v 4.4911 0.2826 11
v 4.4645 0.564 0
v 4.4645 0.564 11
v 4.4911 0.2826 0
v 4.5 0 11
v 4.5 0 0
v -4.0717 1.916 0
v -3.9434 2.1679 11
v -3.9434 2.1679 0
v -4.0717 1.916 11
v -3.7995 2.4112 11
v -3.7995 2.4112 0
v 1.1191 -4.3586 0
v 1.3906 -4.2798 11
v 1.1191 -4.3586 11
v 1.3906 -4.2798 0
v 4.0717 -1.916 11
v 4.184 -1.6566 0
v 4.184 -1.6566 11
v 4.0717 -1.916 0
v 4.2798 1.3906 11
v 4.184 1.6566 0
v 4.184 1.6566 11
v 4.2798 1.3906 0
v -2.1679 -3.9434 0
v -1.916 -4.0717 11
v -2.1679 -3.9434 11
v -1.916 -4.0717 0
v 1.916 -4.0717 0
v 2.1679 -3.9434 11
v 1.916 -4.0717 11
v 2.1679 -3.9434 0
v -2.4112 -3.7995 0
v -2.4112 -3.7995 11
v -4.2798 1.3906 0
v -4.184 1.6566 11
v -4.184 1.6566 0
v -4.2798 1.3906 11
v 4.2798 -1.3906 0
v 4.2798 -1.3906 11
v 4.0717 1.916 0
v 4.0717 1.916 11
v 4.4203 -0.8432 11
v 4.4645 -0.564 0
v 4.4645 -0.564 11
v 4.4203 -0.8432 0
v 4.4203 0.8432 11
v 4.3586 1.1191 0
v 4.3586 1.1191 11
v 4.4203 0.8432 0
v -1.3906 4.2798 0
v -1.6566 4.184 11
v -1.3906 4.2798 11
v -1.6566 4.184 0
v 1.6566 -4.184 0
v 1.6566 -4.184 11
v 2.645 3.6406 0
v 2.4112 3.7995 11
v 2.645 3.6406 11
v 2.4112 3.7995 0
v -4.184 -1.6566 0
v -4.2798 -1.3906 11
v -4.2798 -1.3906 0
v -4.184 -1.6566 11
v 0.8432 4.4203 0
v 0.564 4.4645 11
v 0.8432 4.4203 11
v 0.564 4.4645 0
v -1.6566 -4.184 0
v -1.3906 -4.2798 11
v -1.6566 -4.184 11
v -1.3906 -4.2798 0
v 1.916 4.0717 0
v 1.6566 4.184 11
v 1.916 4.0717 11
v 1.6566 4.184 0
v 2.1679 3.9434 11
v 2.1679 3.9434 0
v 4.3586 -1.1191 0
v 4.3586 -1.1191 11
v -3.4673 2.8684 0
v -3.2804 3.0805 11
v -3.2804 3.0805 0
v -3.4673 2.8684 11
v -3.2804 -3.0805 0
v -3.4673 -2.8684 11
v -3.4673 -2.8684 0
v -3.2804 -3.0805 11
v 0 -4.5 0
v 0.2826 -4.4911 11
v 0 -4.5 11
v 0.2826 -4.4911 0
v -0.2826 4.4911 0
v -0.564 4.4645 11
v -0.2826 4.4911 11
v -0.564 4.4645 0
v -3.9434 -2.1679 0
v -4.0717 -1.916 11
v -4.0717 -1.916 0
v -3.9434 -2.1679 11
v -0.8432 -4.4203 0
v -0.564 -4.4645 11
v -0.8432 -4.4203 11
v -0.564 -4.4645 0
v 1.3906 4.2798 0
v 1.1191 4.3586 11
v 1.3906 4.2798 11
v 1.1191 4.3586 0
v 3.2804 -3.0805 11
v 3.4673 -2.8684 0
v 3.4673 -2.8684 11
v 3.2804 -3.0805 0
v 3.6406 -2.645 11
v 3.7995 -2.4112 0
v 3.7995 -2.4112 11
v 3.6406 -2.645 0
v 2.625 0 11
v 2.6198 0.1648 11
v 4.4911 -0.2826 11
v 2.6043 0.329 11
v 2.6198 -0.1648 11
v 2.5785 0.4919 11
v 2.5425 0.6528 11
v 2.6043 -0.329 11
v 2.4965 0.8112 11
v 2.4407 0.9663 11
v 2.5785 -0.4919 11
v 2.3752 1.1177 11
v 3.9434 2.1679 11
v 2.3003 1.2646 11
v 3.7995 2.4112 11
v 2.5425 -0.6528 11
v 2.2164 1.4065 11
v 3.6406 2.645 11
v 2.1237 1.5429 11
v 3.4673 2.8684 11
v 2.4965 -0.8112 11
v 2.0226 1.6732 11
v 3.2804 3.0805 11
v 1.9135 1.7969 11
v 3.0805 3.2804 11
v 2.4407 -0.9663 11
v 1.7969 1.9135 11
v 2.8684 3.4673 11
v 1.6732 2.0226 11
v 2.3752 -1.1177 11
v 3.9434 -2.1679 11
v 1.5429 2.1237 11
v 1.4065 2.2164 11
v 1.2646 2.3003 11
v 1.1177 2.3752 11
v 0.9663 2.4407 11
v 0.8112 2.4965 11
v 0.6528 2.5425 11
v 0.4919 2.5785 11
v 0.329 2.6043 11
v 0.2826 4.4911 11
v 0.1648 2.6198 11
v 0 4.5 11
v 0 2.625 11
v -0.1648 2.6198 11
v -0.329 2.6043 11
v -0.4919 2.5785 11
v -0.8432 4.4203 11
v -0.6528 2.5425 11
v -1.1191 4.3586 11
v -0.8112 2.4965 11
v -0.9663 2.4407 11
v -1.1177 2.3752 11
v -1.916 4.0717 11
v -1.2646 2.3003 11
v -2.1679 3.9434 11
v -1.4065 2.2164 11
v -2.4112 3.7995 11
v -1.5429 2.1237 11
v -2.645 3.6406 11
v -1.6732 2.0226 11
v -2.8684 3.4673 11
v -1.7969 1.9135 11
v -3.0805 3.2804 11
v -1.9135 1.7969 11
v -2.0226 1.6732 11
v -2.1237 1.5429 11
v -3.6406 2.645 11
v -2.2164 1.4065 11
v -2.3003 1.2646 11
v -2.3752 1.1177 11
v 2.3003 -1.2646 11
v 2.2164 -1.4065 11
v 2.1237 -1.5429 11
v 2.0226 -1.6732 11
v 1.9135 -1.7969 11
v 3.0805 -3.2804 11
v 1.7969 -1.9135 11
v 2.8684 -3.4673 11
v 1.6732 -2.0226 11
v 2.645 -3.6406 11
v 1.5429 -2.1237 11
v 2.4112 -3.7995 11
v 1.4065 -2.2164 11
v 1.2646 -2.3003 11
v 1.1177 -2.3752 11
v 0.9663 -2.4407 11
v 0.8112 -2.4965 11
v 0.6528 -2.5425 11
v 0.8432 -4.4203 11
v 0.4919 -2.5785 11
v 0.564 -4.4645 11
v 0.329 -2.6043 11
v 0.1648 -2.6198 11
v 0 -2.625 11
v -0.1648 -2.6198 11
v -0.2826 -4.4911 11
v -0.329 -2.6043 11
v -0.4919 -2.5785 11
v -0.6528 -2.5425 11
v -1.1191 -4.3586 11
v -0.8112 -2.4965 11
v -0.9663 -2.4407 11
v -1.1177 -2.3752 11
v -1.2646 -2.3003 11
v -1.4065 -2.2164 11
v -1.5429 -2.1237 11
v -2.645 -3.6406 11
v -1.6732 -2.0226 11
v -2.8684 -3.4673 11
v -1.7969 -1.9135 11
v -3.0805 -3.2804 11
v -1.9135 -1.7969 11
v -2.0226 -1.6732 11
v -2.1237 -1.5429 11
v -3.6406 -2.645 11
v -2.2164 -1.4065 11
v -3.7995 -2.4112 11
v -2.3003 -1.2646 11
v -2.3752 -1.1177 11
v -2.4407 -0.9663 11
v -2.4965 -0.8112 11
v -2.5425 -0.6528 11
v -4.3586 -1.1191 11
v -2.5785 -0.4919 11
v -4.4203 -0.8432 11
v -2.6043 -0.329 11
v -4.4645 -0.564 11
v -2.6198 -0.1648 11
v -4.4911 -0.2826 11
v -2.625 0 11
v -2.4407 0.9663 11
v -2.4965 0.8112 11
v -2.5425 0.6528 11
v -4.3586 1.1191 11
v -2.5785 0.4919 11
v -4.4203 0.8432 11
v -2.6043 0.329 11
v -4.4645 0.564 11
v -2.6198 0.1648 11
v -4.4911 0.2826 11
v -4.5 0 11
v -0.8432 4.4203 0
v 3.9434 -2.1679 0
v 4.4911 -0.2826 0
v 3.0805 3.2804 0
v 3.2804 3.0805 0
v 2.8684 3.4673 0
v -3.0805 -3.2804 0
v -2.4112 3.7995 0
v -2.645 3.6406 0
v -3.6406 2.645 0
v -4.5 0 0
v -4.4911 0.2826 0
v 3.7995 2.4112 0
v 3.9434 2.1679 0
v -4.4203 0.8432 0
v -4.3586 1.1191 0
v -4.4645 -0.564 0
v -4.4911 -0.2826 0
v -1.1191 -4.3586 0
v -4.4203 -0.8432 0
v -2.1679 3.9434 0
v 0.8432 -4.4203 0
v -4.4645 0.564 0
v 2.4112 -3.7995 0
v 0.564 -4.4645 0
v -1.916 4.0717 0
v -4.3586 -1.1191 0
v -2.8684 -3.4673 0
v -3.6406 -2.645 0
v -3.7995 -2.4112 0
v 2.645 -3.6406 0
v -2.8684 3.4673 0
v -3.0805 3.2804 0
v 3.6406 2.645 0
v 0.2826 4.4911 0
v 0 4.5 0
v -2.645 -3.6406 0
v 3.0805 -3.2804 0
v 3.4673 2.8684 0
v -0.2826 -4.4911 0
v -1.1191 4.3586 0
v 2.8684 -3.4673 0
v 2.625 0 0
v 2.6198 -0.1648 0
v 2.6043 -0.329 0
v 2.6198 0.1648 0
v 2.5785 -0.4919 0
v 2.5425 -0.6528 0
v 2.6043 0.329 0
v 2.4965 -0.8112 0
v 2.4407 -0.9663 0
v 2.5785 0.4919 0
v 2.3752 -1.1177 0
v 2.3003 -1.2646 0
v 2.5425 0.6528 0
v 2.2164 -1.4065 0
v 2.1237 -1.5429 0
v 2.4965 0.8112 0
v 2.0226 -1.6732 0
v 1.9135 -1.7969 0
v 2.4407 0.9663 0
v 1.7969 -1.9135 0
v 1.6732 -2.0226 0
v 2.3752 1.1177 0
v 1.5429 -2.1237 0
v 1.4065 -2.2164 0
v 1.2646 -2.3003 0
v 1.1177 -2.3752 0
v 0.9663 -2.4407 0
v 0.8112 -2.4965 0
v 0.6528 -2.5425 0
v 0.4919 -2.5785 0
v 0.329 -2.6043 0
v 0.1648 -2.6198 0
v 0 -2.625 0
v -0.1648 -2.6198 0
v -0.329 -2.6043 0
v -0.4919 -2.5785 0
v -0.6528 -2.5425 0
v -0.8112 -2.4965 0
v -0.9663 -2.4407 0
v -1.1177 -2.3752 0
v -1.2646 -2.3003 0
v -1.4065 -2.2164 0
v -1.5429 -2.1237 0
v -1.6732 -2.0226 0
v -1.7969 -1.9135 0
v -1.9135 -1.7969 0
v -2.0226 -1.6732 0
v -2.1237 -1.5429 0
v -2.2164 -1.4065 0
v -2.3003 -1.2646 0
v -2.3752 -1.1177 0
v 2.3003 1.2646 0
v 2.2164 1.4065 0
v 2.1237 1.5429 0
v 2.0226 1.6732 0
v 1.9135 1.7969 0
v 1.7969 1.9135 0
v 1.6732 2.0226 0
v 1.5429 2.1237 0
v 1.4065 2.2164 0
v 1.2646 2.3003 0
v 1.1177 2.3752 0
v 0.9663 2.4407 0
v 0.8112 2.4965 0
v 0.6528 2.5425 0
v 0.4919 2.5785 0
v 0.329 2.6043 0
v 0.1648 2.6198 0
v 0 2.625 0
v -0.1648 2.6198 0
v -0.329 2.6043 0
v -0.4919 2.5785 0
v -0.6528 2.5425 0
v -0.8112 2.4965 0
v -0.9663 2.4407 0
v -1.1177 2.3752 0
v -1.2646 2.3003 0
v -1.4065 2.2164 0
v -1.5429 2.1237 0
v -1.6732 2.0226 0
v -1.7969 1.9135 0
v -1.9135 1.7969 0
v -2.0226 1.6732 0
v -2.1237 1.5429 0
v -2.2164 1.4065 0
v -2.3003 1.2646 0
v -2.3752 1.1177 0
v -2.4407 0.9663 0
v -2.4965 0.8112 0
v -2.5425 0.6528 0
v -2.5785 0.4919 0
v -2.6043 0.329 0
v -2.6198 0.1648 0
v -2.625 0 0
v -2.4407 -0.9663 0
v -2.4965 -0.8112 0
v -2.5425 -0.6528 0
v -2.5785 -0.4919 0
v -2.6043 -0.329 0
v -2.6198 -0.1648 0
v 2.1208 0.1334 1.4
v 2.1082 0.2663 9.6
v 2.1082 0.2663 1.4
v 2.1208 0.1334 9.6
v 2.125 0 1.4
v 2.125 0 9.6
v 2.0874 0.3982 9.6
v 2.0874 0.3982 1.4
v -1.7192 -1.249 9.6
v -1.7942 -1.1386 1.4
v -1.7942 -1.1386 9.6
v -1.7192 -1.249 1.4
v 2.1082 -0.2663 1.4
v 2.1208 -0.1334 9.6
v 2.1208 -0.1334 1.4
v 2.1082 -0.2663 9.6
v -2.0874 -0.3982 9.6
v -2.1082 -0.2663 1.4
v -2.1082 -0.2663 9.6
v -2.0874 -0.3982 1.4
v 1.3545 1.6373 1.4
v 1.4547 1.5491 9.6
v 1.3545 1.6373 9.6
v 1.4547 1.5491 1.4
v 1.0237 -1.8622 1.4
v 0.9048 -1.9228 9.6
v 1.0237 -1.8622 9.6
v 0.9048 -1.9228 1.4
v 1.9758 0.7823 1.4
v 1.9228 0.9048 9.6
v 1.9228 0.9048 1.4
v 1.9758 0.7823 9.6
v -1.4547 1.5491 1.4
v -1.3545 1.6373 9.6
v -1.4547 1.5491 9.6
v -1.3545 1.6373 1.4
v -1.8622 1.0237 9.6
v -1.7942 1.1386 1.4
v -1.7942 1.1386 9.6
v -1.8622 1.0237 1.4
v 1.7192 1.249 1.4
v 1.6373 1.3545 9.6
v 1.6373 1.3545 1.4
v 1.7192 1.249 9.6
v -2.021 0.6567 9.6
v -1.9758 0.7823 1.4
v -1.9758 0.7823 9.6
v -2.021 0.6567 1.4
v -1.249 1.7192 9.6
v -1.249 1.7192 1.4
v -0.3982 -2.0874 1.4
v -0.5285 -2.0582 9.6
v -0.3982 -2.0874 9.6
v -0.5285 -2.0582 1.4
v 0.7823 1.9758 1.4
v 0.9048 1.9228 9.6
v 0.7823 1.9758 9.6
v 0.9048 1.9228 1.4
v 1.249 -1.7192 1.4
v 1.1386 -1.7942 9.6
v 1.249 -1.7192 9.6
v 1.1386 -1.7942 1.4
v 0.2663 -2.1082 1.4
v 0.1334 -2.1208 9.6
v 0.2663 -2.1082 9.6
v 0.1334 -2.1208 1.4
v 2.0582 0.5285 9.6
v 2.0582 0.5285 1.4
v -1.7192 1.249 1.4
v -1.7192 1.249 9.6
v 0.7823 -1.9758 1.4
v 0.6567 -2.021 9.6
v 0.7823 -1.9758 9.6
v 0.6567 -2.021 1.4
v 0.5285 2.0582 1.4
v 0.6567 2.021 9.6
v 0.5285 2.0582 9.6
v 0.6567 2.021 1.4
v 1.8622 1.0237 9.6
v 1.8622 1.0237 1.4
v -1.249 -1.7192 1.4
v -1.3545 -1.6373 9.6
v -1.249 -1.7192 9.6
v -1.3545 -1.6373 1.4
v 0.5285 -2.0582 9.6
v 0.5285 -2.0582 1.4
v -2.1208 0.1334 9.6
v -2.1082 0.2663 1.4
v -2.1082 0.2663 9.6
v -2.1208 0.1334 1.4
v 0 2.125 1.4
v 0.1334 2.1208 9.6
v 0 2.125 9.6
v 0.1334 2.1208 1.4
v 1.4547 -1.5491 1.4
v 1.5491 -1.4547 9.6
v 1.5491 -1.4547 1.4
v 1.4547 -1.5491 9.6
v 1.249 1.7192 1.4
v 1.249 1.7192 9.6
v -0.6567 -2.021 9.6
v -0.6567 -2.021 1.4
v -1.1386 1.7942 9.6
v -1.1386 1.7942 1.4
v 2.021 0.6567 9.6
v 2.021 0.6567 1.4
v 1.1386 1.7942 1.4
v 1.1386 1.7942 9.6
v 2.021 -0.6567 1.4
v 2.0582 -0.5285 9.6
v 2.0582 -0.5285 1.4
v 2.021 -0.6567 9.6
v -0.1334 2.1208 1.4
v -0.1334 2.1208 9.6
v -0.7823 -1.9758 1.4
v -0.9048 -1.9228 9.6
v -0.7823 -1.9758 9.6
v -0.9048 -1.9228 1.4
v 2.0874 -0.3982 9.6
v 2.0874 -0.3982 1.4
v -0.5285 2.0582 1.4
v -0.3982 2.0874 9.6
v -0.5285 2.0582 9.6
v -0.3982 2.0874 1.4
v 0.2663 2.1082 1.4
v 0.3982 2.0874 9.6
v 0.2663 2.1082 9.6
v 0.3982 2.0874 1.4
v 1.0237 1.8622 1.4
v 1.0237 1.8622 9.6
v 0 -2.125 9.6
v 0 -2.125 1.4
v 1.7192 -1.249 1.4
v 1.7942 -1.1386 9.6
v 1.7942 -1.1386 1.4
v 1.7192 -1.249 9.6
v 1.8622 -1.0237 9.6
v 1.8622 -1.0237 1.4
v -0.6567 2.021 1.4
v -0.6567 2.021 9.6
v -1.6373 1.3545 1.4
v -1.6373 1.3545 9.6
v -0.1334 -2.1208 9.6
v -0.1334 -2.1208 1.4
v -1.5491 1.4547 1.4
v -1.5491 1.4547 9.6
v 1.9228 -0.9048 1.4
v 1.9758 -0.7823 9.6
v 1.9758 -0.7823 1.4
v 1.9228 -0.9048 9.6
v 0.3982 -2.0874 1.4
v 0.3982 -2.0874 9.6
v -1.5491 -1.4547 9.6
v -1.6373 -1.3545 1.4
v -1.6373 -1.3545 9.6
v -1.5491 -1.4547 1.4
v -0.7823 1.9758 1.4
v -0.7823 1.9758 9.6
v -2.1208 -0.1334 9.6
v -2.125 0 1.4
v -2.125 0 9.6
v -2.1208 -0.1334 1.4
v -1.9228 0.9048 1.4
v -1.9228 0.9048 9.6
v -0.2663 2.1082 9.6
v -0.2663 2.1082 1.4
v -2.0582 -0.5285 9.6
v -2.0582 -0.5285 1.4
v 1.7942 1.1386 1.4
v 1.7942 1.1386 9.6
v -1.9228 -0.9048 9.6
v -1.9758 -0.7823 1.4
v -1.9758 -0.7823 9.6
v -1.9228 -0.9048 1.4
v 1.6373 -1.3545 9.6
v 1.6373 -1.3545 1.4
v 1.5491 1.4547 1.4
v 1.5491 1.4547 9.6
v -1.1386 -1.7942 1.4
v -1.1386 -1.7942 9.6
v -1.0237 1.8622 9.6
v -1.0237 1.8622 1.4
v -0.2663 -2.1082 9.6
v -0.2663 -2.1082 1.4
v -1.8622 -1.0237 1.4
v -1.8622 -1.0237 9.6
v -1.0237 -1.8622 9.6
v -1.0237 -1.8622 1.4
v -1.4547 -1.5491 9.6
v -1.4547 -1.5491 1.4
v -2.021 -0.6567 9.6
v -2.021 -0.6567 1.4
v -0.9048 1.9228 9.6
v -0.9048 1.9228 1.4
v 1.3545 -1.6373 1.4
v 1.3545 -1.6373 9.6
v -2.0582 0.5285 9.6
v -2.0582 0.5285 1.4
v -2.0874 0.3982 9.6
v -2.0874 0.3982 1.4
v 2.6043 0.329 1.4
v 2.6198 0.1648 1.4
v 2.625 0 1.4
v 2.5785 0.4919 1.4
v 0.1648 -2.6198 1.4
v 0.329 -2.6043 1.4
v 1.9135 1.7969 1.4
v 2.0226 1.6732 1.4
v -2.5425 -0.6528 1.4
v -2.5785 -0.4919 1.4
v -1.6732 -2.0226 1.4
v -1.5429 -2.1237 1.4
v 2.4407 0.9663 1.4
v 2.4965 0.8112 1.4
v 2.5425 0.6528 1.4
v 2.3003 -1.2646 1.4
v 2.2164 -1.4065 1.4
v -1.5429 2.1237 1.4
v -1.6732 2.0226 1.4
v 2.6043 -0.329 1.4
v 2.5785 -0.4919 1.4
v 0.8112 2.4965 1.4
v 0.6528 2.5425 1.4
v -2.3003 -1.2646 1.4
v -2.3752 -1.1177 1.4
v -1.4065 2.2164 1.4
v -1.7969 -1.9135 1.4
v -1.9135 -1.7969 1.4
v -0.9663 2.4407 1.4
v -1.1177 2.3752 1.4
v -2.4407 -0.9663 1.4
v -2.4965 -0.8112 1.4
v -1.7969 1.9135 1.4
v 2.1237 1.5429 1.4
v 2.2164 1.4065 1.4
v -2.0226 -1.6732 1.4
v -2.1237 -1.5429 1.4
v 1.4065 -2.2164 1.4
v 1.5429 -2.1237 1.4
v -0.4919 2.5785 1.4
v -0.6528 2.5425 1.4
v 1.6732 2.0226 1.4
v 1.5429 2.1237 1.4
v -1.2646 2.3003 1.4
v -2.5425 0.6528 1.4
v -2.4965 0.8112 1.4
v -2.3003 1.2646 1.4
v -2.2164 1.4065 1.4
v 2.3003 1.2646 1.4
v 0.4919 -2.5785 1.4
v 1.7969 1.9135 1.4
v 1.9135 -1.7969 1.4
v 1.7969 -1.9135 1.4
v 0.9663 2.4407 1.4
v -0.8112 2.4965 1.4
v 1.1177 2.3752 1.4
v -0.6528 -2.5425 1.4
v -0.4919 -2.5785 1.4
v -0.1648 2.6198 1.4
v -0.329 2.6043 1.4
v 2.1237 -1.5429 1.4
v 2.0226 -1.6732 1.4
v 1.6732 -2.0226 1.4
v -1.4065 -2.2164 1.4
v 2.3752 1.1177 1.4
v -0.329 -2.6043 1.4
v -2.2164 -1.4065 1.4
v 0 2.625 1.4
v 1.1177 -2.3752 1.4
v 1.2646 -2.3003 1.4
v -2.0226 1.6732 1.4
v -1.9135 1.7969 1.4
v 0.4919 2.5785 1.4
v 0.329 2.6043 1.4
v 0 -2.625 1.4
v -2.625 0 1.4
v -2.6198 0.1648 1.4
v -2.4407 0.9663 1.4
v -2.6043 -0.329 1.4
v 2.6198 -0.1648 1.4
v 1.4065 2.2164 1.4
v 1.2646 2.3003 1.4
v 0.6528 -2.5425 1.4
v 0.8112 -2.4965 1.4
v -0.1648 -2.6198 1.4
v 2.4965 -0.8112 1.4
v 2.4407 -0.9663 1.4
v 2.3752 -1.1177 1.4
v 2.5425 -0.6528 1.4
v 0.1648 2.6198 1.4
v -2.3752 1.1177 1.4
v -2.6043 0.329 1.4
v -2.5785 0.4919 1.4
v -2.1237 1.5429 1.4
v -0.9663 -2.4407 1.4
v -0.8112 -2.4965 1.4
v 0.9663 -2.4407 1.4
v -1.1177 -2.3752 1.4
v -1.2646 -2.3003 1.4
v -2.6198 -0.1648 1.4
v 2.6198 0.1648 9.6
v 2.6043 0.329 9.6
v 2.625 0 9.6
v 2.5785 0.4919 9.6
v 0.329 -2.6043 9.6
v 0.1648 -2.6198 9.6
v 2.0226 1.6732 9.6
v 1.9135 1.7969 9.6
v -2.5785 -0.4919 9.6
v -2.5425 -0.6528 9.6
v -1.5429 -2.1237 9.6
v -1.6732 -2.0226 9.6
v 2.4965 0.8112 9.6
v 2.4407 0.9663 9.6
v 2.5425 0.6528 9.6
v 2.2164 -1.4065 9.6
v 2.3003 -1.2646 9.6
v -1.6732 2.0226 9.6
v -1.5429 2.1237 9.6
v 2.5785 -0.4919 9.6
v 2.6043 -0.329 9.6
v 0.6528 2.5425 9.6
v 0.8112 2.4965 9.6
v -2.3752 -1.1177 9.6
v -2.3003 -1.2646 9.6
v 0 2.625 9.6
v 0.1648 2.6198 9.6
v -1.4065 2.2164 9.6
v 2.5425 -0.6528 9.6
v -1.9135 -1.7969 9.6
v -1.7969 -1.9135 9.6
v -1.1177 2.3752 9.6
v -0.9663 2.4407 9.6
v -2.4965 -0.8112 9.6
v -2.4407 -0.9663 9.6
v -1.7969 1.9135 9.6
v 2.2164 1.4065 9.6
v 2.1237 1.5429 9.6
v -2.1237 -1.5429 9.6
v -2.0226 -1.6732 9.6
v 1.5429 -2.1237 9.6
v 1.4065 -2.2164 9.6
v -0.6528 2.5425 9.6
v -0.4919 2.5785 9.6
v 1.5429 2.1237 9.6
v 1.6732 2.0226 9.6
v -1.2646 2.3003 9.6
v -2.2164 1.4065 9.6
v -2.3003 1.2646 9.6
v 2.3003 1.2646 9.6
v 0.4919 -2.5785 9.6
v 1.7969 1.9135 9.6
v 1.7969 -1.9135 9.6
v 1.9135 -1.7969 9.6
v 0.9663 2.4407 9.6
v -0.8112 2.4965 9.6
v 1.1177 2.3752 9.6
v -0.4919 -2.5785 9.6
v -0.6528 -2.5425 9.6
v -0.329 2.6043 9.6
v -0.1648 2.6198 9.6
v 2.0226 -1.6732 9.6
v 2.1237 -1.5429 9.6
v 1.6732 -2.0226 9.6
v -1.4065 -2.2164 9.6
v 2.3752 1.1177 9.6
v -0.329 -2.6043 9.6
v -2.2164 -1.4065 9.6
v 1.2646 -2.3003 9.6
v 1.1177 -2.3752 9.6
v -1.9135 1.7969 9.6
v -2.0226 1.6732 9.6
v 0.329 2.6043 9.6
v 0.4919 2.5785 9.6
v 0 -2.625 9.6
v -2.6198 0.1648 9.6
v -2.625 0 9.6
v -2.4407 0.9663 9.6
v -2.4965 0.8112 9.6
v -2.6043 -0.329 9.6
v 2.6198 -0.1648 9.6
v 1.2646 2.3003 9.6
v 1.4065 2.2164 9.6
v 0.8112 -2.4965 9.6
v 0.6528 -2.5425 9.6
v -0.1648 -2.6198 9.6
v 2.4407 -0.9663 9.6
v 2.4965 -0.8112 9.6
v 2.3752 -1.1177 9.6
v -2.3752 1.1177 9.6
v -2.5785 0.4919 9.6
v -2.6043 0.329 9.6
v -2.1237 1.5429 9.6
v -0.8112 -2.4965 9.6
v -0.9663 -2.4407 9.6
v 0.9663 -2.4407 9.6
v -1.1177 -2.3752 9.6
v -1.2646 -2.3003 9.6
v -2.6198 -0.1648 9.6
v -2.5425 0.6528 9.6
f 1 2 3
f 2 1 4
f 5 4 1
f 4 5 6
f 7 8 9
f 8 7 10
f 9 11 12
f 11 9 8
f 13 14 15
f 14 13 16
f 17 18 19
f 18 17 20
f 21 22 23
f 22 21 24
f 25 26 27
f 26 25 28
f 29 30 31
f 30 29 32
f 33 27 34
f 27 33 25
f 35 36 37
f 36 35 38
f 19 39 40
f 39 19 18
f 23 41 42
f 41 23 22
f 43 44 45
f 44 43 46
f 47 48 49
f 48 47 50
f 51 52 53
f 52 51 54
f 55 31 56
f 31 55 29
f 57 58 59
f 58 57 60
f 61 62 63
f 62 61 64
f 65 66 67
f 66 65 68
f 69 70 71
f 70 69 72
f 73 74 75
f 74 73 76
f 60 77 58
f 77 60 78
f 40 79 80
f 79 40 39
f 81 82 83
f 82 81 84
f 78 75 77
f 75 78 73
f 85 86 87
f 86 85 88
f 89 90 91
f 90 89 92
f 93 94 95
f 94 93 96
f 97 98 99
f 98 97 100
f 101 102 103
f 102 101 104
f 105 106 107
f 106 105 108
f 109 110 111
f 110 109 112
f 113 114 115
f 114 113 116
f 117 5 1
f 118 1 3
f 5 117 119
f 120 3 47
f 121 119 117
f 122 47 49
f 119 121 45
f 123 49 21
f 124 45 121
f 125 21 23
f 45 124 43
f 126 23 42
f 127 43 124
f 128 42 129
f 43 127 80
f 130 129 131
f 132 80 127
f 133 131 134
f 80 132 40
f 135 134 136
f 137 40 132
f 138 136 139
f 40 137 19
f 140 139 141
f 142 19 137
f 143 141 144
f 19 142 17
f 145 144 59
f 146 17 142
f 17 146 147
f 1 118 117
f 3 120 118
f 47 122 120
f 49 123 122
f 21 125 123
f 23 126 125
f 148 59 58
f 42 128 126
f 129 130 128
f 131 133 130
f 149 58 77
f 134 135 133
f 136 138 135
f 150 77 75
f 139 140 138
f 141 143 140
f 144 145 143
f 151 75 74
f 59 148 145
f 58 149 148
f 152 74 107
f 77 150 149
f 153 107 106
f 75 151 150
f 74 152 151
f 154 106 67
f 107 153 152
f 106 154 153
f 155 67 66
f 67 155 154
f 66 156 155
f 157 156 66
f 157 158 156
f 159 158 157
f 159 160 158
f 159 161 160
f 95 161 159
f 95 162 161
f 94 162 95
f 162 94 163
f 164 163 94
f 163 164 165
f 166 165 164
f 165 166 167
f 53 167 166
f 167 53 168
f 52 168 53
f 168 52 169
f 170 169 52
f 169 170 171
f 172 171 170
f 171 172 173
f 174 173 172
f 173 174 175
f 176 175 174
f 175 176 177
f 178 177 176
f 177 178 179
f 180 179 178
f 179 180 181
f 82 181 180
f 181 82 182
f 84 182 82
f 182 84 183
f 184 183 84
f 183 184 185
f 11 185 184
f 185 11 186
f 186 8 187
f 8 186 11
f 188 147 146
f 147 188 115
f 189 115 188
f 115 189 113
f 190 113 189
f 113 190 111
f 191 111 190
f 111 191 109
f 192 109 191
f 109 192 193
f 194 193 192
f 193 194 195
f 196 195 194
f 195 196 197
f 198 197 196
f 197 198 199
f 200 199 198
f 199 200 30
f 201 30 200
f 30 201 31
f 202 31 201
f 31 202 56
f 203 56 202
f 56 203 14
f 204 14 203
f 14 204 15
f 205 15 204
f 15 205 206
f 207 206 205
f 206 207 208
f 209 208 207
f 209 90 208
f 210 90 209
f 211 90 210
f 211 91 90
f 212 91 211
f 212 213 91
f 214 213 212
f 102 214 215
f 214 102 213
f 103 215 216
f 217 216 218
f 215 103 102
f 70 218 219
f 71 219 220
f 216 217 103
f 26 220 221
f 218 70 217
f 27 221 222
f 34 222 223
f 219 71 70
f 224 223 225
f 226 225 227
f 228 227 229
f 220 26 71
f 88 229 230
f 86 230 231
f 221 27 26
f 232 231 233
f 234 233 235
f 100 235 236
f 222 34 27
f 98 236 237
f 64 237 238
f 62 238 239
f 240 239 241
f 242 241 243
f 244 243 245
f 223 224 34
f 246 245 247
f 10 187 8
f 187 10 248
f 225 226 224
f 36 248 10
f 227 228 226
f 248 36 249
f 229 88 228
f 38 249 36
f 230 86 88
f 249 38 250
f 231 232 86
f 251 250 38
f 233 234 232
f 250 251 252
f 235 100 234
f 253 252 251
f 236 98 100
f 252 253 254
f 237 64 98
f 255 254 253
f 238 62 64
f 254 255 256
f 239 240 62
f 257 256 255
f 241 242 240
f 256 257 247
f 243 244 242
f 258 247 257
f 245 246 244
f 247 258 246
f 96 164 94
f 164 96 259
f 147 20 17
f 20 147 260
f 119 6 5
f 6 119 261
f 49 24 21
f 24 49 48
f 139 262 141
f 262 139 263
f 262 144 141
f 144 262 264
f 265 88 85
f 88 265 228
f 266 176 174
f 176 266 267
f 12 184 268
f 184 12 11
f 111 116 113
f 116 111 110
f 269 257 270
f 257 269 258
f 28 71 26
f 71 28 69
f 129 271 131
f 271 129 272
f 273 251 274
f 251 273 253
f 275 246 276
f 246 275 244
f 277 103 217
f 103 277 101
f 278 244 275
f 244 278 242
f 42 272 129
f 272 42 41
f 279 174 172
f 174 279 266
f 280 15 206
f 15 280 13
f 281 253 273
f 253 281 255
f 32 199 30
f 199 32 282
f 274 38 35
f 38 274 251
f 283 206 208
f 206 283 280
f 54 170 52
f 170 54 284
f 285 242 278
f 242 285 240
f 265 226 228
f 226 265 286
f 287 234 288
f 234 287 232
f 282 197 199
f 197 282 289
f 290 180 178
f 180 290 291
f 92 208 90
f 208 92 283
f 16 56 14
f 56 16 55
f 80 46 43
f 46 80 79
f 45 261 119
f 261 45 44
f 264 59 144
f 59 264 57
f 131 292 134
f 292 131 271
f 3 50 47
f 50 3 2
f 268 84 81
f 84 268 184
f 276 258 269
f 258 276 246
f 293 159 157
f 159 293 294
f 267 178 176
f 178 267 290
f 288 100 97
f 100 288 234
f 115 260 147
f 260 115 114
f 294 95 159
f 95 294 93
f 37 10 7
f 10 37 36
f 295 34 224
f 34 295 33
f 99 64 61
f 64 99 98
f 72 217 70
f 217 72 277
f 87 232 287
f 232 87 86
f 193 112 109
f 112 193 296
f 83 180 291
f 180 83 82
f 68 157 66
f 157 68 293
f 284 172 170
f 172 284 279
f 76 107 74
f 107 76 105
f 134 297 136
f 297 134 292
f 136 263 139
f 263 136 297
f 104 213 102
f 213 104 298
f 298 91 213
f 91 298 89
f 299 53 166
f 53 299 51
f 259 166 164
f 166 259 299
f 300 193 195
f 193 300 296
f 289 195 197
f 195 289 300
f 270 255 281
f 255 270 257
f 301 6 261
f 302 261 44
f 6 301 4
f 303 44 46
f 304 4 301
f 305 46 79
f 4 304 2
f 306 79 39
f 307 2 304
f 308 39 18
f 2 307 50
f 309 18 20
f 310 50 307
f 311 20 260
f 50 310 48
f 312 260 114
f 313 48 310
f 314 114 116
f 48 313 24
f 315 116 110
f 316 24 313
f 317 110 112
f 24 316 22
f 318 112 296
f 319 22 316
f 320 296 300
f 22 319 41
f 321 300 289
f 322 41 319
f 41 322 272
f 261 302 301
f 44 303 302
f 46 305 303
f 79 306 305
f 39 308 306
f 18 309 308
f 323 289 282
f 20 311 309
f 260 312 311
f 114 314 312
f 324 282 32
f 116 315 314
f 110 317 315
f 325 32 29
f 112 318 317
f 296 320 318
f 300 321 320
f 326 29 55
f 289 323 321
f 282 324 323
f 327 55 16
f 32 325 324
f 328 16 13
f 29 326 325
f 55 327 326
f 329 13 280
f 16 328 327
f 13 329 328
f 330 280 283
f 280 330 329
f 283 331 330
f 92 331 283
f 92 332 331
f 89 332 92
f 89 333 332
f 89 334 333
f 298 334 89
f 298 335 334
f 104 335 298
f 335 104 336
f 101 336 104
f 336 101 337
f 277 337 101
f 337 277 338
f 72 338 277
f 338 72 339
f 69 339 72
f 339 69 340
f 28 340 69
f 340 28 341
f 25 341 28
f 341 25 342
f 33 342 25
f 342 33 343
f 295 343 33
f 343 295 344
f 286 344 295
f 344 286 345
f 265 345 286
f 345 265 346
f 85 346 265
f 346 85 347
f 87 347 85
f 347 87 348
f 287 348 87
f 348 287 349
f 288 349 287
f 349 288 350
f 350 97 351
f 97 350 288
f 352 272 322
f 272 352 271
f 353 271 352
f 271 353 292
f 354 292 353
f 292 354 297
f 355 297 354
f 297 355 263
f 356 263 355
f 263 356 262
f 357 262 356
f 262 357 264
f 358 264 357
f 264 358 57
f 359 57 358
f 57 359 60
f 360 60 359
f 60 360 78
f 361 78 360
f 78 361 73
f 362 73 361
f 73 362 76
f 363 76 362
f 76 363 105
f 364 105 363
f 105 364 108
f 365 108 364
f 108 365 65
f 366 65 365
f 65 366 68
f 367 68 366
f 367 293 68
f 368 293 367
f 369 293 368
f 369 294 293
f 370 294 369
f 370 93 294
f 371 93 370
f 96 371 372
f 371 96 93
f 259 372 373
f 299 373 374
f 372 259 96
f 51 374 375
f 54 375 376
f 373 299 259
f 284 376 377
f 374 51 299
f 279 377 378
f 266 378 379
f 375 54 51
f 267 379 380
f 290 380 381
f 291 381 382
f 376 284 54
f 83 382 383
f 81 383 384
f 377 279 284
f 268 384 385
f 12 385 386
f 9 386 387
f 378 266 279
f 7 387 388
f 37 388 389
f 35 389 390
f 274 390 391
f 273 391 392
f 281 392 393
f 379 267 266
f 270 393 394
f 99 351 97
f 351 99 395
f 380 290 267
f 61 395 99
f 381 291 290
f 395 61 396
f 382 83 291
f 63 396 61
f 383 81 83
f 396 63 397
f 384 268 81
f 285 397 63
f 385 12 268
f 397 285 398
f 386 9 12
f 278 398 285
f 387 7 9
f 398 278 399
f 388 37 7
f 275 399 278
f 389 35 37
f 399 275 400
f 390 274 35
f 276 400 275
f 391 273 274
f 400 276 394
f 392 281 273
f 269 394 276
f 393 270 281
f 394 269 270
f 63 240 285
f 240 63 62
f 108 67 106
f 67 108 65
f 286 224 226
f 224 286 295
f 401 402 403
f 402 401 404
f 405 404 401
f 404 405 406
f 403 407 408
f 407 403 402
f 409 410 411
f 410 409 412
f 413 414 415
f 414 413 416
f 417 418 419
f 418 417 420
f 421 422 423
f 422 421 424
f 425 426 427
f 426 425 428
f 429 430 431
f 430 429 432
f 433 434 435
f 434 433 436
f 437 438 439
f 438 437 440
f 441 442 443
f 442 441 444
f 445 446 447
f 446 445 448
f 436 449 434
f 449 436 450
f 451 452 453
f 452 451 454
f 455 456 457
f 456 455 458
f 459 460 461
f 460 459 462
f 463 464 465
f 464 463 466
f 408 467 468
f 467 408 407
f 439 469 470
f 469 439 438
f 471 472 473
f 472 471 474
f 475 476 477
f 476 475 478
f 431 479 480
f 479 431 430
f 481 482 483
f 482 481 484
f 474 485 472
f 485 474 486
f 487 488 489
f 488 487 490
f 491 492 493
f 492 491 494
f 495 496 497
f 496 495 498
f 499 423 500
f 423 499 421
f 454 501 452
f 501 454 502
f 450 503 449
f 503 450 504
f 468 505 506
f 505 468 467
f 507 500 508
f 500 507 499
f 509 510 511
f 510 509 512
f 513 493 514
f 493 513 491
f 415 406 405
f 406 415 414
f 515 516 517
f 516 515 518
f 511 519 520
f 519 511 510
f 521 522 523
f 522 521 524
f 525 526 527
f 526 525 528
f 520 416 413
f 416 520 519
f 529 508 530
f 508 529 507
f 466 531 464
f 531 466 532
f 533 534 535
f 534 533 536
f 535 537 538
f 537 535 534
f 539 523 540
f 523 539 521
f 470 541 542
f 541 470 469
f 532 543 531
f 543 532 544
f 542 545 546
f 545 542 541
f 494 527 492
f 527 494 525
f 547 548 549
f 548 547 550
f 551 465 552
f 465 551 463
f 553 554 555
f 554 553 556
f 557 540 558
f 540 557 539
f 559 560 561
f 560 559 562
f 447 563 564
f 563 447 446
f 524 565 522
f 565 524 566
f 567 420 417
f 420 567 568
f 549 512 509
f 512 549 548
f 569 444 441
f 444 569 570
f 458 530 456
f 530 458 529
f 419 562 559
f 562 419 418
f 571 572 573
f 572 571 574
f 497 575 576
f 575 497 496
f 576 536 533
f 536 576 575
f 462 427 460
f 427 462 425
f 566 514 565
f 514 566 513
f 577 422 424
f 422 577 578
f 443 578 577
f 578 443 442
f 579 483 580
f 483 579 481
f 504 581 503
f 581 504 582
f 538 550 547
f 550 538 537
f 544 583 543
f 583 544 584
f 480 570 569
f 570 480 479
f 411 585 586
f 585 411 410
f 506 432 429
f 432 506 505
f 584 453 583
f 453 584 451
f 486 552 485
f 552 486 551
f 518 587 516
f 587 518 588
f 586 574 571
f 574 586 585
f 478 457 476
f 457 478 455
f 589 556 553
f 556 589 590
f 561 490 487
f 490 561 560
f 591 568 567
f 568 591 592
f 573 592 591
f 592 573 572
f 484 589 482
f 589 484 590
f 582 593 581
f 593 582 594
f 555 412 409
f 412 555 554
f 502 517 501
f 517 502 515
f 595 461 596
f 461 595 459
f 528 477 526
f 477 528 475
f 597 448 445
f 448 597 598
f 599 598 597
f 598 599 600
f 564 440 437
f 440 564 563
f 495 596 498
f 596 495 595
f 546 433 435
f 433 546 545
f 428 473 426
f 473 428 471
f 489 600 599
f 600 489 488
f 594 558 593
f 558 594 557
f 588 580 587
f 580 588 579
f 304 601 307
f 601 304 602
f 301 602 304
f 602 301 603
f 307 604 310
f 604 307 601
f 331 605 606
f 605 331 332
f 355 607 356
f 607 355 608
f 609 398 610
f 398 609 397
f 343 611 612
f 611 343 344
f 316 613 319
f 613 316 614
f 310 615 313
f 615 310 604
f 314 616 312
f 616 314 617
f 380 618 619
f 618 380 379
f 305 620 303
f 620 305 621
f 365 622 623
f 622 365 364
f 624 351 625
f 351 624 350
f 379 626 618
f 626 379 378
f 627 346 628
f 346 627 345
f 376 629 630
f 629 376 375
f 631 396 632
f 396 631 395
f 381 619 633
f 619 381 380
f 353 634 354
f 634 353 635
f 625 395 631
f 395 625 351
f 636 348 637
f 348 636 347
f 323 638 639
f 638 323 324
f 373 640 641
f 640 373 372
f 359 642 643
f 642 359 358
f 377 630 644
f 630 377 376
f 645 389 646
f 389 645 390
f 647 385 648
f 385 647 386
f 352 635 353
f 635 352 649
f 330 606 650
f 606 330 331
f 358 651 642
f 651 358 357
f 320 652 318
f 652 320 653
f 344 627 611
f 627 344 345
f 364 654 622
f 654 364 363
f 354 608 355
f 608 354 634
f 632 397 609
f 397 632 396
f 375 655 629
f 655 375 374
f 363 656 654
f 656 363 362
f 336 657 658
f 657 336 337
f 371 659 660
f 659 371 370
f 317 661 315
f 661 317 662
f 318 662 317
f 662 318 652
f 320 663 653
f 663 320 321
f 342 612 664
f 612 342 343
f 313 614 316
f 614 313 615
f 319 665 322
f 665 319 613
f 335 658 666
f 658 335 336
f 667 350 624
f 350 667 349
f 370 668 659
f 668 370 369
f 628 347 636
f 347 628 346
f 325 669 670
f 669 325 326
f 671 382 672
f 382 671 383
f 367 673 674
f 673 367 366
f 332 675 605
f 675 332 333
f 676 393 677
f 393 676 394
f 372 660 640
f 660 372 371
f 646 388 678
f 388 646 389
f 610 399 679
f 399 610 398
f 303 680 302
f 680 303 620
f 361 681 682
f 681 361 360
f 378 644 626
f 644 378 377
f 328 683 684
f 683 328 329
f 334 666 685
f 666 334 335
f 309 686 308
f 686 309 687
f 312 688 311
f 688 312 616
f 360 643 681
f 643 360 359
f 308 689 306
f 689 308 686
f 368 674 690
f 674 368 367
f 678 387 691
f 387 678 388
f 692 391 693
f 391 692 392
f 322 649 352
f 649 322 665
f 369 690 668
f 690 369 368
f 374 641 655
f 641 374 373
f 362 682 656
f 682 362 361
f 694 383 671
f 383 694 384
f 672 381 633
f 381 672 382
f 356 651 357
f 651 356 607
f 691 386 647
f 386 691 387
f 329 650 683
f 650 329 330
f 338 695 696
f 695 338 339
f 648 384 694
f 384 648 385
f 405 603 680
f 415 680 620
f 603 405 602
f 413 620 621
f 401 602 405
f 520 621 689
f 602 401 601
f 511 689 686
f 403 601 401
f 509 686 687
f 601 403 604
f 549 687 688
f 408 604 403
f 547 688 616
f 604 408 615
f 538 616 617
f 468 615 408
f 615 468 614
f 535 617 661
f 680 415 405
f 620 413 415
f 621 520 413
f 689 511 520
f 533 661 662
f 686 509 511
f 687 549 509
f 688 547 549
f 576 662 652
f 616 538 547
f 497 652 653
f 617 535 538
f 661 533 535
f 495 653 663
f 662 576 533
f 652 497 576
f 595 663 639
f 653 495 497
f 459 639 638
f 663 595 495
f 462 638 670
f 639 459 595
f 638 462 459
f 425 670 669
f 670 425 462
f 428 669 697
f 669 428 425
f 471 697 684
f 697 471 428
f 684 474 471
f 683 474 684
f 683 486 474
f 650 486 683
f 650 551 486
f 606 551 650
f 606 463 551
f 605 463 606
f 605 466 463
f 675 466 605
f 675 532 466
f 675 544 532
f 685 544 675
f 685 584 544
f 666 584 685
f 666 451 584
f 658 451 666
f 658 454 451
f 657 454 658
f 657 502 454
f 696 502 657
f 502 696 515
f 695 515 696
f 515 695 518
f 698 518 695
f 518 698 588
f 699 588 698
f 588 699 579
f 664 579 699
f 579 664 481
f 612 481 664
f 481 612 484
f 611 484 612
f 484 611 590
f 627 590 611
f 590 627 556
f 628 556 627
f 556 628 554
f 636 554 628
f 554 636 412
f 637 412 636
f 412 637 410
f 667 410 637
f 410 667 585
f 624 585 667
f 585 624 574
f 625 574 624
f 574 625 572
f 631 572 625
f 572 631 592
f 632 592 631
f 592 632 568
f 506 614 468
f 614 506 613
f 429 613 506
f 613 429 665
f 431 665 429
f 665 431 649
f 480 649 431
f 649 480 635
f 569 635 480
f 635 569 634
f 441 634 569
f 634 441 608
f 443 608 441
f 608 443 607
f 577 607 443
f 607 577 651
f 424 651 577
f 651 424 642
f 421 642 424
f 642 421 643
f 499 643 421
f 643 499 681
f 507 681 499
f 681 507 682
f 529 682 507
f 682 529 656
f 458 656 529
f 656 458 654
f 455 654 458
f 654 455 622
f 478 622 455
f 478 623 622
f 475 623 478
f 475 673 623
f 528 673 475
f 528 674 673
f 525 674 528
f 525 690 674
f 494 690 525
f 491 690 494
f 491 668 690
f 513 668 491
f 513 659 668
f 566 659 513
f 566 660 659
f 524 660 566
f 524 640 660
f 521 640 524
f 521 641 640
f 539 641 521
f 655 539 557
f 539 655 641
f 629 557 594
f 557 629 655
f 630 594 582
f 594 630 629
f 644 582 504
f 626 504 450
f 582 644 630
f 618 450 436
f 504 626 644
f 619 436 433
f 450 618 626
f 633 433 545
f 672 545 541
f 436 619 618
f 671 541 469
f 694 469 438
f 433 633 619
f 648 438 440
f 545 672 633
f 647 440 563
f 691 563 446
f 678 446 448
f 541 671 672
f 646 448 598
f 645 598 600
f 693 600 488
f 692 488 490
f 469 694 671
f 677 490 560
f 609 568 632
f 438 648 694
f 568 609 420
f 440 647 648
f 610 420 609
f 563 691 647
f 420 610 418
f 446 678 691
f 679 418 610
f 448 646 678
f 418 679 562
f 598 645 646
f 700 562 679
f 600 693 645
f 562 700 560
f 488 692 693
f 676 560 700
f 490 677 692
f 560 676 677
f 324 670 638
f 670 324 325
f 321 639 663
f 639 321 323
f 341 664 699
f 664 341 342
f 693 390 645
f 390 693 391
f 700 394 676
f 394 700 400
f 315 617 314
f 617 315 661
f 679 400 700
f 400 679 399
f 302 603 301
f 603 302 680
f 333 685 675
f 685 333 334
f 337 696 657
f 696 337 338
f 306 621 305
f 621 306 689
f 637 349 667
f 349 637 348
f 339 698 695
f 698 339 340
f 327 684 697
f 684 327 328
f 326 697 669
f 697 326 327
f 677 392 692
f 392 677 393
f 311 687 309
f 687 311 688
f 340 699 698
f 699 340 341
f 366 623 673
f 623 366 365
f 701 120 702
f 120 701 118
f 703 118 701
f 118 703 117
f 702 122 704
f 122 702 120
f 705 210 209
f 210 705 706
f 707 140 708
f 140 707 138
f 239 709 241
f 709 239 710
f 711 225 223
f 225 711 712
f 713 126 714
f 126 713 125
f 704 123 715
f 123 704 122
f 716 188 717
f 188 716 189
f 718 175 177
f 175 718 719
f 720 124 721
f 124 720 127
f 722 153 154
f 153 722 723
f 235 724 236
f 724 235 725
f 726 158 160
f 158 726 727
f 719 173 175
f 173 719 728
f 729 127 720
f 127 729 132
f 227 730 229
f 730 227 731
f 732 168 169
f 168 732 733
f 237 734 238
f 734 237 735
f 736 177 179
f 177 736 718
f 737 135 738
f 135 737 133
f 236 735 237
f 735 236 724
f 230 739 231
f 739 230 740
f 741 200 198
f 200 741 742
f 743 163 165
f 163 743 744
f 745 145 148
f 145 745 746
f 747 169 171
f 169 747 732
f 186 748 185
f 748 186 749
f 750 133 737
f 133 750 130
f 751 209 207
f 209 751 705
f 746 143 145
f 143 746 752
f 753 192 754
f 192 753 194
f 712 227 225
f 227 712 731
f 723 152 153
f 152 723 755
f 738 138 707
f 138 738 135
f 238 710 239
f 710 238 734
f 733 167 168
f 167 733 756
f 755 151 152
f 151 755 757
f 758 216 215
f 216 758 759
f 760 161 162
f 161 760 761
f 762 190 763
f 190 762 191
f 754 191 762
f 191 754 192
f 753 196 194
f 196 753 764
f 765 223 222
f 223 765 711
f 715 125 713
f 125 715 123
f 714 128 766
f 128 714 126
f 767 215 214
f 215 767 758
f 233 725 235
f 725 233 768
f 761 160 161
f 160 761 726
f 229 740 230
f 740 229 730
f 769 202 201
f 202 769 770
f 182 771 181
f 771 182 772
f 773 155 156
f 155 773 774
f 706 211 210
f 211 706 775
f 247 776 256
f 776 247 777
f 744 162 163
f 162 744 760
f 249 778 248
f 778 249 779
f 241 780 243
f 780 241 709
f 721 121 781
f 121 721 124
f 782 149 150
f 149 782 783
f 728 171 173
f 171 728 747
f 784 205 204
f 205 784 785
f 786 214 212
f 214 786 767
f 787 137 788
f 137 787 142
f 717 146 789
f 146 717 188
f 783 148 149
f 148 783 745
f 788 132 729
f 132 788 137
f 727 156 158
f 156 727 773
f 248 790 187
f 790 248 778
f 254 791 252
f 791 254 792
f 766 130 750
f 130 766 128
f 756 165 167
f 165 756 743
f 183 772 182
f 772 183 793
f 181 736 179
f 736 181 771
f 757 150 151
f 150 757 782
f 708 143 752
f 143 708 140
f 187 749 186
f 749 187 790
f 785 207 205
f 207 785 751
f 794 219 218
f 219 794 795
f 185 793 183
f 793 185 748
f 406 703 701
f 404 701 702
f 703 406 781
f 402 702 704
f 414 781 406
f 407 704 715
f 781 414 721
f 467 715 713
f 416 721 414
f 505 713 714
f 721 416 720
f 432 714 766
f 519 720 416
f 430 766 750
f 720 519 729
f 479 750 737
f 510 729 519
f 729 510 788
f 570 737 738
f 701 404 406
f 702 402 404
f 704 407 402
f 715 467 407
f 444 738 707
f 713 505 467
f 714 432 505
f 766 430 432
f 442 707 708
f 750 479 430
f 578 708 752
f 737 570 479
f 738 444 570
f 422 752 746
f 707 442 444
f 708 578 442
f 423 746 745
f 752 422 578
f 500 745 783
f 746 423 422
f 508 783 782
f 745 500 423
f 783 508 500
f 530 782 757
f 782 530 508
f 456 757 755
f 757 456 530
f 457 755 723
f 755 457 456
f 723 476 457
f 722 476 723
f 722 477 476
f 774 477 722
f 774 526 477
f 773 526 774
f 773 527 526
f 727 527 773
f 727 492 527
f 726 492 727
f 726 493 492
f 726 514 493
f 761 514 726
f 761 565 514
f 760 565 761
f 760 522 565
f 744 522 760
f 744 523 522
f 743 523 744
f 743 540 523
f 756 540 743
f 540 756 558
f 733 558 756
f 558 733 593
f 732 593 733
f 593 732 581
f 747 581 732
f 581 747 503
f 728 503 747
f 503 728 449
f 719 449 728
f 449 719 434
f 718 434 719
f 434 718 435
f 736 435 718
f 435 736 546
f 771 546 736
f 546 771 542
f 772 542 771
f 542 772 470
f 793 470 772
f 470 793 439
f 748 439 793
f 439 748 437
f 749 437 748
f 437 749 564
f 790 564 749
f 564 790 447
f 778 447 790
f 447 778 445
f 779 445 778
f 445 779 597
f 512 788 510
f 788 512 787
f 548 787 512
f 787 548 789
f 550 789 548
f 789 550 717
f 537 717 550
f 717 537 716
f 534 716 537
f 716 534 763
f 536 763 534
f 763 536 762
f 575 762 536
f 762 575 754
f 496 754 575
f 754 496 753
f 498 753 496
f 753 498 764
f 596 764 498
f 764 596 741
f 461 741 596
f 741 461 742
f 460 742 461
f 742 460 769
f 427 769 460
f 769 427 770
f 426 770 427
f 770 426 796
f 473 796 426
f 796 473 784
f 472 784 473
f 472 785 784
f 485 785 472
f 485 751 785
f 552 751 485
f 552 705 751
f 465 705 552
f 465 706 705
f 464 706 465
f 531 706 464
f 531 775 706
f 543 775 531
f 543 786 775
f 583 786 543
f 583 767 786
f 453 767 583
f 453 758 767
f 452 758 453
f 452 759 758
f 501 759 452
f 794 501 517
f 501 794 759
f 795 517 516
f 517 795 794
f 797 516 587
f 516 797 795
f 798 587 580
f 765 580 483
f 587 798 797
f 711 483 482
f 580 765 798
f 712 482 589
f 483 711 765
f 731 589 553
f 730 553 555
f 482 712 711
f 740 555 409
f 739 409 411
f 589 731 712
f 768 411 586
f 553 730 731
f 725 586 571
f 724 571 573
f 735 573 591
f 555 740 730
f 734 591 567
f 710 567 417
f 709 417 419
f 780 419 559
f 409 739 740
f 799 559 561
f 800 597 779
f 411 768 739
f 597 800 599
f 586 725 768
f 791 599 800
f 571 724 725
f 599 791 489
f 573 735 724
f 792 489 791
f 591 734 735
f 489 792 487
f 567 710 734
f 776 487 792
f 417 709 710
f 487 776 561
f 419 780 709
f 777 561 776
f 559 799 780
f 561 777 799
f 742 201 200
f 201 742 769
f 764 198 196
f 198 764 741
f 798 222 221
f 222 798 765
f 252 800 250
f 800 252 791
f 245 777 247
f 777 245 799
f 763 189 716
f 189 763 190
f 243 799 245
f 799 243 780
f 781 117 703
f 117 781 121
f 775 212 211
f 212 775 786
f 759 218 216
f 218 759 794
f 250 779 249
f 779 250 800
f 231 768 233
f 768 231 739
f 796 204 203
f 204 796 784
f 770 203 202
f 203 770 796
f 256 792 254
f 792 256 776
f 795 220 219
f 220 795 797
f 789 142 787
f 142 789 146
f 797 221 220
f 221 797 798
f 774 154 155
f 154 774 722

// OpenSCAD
hole_dir_outer=9;
hole_dir_inner=4.25;
//Takes M3 threaded brass inserts
$fn=100;

height=11;
pillar(hole_dir_outer,hole_dir_inner,height);

module pillar(outer, inner, height) {
    difference() {
        cylinder(d=outer, h=height);
        translate([0,0,-0.1]) cylinder(d=inner, h=height+0.1);
        
        //Taper the holes
        translate([0,0,-0.1]) cylinder(d=inner+1, h=1.5);
        translate([0,0,height - 1.5 + 0.1]) cylinder(d=inner+1, h=1.5);
    }
}
